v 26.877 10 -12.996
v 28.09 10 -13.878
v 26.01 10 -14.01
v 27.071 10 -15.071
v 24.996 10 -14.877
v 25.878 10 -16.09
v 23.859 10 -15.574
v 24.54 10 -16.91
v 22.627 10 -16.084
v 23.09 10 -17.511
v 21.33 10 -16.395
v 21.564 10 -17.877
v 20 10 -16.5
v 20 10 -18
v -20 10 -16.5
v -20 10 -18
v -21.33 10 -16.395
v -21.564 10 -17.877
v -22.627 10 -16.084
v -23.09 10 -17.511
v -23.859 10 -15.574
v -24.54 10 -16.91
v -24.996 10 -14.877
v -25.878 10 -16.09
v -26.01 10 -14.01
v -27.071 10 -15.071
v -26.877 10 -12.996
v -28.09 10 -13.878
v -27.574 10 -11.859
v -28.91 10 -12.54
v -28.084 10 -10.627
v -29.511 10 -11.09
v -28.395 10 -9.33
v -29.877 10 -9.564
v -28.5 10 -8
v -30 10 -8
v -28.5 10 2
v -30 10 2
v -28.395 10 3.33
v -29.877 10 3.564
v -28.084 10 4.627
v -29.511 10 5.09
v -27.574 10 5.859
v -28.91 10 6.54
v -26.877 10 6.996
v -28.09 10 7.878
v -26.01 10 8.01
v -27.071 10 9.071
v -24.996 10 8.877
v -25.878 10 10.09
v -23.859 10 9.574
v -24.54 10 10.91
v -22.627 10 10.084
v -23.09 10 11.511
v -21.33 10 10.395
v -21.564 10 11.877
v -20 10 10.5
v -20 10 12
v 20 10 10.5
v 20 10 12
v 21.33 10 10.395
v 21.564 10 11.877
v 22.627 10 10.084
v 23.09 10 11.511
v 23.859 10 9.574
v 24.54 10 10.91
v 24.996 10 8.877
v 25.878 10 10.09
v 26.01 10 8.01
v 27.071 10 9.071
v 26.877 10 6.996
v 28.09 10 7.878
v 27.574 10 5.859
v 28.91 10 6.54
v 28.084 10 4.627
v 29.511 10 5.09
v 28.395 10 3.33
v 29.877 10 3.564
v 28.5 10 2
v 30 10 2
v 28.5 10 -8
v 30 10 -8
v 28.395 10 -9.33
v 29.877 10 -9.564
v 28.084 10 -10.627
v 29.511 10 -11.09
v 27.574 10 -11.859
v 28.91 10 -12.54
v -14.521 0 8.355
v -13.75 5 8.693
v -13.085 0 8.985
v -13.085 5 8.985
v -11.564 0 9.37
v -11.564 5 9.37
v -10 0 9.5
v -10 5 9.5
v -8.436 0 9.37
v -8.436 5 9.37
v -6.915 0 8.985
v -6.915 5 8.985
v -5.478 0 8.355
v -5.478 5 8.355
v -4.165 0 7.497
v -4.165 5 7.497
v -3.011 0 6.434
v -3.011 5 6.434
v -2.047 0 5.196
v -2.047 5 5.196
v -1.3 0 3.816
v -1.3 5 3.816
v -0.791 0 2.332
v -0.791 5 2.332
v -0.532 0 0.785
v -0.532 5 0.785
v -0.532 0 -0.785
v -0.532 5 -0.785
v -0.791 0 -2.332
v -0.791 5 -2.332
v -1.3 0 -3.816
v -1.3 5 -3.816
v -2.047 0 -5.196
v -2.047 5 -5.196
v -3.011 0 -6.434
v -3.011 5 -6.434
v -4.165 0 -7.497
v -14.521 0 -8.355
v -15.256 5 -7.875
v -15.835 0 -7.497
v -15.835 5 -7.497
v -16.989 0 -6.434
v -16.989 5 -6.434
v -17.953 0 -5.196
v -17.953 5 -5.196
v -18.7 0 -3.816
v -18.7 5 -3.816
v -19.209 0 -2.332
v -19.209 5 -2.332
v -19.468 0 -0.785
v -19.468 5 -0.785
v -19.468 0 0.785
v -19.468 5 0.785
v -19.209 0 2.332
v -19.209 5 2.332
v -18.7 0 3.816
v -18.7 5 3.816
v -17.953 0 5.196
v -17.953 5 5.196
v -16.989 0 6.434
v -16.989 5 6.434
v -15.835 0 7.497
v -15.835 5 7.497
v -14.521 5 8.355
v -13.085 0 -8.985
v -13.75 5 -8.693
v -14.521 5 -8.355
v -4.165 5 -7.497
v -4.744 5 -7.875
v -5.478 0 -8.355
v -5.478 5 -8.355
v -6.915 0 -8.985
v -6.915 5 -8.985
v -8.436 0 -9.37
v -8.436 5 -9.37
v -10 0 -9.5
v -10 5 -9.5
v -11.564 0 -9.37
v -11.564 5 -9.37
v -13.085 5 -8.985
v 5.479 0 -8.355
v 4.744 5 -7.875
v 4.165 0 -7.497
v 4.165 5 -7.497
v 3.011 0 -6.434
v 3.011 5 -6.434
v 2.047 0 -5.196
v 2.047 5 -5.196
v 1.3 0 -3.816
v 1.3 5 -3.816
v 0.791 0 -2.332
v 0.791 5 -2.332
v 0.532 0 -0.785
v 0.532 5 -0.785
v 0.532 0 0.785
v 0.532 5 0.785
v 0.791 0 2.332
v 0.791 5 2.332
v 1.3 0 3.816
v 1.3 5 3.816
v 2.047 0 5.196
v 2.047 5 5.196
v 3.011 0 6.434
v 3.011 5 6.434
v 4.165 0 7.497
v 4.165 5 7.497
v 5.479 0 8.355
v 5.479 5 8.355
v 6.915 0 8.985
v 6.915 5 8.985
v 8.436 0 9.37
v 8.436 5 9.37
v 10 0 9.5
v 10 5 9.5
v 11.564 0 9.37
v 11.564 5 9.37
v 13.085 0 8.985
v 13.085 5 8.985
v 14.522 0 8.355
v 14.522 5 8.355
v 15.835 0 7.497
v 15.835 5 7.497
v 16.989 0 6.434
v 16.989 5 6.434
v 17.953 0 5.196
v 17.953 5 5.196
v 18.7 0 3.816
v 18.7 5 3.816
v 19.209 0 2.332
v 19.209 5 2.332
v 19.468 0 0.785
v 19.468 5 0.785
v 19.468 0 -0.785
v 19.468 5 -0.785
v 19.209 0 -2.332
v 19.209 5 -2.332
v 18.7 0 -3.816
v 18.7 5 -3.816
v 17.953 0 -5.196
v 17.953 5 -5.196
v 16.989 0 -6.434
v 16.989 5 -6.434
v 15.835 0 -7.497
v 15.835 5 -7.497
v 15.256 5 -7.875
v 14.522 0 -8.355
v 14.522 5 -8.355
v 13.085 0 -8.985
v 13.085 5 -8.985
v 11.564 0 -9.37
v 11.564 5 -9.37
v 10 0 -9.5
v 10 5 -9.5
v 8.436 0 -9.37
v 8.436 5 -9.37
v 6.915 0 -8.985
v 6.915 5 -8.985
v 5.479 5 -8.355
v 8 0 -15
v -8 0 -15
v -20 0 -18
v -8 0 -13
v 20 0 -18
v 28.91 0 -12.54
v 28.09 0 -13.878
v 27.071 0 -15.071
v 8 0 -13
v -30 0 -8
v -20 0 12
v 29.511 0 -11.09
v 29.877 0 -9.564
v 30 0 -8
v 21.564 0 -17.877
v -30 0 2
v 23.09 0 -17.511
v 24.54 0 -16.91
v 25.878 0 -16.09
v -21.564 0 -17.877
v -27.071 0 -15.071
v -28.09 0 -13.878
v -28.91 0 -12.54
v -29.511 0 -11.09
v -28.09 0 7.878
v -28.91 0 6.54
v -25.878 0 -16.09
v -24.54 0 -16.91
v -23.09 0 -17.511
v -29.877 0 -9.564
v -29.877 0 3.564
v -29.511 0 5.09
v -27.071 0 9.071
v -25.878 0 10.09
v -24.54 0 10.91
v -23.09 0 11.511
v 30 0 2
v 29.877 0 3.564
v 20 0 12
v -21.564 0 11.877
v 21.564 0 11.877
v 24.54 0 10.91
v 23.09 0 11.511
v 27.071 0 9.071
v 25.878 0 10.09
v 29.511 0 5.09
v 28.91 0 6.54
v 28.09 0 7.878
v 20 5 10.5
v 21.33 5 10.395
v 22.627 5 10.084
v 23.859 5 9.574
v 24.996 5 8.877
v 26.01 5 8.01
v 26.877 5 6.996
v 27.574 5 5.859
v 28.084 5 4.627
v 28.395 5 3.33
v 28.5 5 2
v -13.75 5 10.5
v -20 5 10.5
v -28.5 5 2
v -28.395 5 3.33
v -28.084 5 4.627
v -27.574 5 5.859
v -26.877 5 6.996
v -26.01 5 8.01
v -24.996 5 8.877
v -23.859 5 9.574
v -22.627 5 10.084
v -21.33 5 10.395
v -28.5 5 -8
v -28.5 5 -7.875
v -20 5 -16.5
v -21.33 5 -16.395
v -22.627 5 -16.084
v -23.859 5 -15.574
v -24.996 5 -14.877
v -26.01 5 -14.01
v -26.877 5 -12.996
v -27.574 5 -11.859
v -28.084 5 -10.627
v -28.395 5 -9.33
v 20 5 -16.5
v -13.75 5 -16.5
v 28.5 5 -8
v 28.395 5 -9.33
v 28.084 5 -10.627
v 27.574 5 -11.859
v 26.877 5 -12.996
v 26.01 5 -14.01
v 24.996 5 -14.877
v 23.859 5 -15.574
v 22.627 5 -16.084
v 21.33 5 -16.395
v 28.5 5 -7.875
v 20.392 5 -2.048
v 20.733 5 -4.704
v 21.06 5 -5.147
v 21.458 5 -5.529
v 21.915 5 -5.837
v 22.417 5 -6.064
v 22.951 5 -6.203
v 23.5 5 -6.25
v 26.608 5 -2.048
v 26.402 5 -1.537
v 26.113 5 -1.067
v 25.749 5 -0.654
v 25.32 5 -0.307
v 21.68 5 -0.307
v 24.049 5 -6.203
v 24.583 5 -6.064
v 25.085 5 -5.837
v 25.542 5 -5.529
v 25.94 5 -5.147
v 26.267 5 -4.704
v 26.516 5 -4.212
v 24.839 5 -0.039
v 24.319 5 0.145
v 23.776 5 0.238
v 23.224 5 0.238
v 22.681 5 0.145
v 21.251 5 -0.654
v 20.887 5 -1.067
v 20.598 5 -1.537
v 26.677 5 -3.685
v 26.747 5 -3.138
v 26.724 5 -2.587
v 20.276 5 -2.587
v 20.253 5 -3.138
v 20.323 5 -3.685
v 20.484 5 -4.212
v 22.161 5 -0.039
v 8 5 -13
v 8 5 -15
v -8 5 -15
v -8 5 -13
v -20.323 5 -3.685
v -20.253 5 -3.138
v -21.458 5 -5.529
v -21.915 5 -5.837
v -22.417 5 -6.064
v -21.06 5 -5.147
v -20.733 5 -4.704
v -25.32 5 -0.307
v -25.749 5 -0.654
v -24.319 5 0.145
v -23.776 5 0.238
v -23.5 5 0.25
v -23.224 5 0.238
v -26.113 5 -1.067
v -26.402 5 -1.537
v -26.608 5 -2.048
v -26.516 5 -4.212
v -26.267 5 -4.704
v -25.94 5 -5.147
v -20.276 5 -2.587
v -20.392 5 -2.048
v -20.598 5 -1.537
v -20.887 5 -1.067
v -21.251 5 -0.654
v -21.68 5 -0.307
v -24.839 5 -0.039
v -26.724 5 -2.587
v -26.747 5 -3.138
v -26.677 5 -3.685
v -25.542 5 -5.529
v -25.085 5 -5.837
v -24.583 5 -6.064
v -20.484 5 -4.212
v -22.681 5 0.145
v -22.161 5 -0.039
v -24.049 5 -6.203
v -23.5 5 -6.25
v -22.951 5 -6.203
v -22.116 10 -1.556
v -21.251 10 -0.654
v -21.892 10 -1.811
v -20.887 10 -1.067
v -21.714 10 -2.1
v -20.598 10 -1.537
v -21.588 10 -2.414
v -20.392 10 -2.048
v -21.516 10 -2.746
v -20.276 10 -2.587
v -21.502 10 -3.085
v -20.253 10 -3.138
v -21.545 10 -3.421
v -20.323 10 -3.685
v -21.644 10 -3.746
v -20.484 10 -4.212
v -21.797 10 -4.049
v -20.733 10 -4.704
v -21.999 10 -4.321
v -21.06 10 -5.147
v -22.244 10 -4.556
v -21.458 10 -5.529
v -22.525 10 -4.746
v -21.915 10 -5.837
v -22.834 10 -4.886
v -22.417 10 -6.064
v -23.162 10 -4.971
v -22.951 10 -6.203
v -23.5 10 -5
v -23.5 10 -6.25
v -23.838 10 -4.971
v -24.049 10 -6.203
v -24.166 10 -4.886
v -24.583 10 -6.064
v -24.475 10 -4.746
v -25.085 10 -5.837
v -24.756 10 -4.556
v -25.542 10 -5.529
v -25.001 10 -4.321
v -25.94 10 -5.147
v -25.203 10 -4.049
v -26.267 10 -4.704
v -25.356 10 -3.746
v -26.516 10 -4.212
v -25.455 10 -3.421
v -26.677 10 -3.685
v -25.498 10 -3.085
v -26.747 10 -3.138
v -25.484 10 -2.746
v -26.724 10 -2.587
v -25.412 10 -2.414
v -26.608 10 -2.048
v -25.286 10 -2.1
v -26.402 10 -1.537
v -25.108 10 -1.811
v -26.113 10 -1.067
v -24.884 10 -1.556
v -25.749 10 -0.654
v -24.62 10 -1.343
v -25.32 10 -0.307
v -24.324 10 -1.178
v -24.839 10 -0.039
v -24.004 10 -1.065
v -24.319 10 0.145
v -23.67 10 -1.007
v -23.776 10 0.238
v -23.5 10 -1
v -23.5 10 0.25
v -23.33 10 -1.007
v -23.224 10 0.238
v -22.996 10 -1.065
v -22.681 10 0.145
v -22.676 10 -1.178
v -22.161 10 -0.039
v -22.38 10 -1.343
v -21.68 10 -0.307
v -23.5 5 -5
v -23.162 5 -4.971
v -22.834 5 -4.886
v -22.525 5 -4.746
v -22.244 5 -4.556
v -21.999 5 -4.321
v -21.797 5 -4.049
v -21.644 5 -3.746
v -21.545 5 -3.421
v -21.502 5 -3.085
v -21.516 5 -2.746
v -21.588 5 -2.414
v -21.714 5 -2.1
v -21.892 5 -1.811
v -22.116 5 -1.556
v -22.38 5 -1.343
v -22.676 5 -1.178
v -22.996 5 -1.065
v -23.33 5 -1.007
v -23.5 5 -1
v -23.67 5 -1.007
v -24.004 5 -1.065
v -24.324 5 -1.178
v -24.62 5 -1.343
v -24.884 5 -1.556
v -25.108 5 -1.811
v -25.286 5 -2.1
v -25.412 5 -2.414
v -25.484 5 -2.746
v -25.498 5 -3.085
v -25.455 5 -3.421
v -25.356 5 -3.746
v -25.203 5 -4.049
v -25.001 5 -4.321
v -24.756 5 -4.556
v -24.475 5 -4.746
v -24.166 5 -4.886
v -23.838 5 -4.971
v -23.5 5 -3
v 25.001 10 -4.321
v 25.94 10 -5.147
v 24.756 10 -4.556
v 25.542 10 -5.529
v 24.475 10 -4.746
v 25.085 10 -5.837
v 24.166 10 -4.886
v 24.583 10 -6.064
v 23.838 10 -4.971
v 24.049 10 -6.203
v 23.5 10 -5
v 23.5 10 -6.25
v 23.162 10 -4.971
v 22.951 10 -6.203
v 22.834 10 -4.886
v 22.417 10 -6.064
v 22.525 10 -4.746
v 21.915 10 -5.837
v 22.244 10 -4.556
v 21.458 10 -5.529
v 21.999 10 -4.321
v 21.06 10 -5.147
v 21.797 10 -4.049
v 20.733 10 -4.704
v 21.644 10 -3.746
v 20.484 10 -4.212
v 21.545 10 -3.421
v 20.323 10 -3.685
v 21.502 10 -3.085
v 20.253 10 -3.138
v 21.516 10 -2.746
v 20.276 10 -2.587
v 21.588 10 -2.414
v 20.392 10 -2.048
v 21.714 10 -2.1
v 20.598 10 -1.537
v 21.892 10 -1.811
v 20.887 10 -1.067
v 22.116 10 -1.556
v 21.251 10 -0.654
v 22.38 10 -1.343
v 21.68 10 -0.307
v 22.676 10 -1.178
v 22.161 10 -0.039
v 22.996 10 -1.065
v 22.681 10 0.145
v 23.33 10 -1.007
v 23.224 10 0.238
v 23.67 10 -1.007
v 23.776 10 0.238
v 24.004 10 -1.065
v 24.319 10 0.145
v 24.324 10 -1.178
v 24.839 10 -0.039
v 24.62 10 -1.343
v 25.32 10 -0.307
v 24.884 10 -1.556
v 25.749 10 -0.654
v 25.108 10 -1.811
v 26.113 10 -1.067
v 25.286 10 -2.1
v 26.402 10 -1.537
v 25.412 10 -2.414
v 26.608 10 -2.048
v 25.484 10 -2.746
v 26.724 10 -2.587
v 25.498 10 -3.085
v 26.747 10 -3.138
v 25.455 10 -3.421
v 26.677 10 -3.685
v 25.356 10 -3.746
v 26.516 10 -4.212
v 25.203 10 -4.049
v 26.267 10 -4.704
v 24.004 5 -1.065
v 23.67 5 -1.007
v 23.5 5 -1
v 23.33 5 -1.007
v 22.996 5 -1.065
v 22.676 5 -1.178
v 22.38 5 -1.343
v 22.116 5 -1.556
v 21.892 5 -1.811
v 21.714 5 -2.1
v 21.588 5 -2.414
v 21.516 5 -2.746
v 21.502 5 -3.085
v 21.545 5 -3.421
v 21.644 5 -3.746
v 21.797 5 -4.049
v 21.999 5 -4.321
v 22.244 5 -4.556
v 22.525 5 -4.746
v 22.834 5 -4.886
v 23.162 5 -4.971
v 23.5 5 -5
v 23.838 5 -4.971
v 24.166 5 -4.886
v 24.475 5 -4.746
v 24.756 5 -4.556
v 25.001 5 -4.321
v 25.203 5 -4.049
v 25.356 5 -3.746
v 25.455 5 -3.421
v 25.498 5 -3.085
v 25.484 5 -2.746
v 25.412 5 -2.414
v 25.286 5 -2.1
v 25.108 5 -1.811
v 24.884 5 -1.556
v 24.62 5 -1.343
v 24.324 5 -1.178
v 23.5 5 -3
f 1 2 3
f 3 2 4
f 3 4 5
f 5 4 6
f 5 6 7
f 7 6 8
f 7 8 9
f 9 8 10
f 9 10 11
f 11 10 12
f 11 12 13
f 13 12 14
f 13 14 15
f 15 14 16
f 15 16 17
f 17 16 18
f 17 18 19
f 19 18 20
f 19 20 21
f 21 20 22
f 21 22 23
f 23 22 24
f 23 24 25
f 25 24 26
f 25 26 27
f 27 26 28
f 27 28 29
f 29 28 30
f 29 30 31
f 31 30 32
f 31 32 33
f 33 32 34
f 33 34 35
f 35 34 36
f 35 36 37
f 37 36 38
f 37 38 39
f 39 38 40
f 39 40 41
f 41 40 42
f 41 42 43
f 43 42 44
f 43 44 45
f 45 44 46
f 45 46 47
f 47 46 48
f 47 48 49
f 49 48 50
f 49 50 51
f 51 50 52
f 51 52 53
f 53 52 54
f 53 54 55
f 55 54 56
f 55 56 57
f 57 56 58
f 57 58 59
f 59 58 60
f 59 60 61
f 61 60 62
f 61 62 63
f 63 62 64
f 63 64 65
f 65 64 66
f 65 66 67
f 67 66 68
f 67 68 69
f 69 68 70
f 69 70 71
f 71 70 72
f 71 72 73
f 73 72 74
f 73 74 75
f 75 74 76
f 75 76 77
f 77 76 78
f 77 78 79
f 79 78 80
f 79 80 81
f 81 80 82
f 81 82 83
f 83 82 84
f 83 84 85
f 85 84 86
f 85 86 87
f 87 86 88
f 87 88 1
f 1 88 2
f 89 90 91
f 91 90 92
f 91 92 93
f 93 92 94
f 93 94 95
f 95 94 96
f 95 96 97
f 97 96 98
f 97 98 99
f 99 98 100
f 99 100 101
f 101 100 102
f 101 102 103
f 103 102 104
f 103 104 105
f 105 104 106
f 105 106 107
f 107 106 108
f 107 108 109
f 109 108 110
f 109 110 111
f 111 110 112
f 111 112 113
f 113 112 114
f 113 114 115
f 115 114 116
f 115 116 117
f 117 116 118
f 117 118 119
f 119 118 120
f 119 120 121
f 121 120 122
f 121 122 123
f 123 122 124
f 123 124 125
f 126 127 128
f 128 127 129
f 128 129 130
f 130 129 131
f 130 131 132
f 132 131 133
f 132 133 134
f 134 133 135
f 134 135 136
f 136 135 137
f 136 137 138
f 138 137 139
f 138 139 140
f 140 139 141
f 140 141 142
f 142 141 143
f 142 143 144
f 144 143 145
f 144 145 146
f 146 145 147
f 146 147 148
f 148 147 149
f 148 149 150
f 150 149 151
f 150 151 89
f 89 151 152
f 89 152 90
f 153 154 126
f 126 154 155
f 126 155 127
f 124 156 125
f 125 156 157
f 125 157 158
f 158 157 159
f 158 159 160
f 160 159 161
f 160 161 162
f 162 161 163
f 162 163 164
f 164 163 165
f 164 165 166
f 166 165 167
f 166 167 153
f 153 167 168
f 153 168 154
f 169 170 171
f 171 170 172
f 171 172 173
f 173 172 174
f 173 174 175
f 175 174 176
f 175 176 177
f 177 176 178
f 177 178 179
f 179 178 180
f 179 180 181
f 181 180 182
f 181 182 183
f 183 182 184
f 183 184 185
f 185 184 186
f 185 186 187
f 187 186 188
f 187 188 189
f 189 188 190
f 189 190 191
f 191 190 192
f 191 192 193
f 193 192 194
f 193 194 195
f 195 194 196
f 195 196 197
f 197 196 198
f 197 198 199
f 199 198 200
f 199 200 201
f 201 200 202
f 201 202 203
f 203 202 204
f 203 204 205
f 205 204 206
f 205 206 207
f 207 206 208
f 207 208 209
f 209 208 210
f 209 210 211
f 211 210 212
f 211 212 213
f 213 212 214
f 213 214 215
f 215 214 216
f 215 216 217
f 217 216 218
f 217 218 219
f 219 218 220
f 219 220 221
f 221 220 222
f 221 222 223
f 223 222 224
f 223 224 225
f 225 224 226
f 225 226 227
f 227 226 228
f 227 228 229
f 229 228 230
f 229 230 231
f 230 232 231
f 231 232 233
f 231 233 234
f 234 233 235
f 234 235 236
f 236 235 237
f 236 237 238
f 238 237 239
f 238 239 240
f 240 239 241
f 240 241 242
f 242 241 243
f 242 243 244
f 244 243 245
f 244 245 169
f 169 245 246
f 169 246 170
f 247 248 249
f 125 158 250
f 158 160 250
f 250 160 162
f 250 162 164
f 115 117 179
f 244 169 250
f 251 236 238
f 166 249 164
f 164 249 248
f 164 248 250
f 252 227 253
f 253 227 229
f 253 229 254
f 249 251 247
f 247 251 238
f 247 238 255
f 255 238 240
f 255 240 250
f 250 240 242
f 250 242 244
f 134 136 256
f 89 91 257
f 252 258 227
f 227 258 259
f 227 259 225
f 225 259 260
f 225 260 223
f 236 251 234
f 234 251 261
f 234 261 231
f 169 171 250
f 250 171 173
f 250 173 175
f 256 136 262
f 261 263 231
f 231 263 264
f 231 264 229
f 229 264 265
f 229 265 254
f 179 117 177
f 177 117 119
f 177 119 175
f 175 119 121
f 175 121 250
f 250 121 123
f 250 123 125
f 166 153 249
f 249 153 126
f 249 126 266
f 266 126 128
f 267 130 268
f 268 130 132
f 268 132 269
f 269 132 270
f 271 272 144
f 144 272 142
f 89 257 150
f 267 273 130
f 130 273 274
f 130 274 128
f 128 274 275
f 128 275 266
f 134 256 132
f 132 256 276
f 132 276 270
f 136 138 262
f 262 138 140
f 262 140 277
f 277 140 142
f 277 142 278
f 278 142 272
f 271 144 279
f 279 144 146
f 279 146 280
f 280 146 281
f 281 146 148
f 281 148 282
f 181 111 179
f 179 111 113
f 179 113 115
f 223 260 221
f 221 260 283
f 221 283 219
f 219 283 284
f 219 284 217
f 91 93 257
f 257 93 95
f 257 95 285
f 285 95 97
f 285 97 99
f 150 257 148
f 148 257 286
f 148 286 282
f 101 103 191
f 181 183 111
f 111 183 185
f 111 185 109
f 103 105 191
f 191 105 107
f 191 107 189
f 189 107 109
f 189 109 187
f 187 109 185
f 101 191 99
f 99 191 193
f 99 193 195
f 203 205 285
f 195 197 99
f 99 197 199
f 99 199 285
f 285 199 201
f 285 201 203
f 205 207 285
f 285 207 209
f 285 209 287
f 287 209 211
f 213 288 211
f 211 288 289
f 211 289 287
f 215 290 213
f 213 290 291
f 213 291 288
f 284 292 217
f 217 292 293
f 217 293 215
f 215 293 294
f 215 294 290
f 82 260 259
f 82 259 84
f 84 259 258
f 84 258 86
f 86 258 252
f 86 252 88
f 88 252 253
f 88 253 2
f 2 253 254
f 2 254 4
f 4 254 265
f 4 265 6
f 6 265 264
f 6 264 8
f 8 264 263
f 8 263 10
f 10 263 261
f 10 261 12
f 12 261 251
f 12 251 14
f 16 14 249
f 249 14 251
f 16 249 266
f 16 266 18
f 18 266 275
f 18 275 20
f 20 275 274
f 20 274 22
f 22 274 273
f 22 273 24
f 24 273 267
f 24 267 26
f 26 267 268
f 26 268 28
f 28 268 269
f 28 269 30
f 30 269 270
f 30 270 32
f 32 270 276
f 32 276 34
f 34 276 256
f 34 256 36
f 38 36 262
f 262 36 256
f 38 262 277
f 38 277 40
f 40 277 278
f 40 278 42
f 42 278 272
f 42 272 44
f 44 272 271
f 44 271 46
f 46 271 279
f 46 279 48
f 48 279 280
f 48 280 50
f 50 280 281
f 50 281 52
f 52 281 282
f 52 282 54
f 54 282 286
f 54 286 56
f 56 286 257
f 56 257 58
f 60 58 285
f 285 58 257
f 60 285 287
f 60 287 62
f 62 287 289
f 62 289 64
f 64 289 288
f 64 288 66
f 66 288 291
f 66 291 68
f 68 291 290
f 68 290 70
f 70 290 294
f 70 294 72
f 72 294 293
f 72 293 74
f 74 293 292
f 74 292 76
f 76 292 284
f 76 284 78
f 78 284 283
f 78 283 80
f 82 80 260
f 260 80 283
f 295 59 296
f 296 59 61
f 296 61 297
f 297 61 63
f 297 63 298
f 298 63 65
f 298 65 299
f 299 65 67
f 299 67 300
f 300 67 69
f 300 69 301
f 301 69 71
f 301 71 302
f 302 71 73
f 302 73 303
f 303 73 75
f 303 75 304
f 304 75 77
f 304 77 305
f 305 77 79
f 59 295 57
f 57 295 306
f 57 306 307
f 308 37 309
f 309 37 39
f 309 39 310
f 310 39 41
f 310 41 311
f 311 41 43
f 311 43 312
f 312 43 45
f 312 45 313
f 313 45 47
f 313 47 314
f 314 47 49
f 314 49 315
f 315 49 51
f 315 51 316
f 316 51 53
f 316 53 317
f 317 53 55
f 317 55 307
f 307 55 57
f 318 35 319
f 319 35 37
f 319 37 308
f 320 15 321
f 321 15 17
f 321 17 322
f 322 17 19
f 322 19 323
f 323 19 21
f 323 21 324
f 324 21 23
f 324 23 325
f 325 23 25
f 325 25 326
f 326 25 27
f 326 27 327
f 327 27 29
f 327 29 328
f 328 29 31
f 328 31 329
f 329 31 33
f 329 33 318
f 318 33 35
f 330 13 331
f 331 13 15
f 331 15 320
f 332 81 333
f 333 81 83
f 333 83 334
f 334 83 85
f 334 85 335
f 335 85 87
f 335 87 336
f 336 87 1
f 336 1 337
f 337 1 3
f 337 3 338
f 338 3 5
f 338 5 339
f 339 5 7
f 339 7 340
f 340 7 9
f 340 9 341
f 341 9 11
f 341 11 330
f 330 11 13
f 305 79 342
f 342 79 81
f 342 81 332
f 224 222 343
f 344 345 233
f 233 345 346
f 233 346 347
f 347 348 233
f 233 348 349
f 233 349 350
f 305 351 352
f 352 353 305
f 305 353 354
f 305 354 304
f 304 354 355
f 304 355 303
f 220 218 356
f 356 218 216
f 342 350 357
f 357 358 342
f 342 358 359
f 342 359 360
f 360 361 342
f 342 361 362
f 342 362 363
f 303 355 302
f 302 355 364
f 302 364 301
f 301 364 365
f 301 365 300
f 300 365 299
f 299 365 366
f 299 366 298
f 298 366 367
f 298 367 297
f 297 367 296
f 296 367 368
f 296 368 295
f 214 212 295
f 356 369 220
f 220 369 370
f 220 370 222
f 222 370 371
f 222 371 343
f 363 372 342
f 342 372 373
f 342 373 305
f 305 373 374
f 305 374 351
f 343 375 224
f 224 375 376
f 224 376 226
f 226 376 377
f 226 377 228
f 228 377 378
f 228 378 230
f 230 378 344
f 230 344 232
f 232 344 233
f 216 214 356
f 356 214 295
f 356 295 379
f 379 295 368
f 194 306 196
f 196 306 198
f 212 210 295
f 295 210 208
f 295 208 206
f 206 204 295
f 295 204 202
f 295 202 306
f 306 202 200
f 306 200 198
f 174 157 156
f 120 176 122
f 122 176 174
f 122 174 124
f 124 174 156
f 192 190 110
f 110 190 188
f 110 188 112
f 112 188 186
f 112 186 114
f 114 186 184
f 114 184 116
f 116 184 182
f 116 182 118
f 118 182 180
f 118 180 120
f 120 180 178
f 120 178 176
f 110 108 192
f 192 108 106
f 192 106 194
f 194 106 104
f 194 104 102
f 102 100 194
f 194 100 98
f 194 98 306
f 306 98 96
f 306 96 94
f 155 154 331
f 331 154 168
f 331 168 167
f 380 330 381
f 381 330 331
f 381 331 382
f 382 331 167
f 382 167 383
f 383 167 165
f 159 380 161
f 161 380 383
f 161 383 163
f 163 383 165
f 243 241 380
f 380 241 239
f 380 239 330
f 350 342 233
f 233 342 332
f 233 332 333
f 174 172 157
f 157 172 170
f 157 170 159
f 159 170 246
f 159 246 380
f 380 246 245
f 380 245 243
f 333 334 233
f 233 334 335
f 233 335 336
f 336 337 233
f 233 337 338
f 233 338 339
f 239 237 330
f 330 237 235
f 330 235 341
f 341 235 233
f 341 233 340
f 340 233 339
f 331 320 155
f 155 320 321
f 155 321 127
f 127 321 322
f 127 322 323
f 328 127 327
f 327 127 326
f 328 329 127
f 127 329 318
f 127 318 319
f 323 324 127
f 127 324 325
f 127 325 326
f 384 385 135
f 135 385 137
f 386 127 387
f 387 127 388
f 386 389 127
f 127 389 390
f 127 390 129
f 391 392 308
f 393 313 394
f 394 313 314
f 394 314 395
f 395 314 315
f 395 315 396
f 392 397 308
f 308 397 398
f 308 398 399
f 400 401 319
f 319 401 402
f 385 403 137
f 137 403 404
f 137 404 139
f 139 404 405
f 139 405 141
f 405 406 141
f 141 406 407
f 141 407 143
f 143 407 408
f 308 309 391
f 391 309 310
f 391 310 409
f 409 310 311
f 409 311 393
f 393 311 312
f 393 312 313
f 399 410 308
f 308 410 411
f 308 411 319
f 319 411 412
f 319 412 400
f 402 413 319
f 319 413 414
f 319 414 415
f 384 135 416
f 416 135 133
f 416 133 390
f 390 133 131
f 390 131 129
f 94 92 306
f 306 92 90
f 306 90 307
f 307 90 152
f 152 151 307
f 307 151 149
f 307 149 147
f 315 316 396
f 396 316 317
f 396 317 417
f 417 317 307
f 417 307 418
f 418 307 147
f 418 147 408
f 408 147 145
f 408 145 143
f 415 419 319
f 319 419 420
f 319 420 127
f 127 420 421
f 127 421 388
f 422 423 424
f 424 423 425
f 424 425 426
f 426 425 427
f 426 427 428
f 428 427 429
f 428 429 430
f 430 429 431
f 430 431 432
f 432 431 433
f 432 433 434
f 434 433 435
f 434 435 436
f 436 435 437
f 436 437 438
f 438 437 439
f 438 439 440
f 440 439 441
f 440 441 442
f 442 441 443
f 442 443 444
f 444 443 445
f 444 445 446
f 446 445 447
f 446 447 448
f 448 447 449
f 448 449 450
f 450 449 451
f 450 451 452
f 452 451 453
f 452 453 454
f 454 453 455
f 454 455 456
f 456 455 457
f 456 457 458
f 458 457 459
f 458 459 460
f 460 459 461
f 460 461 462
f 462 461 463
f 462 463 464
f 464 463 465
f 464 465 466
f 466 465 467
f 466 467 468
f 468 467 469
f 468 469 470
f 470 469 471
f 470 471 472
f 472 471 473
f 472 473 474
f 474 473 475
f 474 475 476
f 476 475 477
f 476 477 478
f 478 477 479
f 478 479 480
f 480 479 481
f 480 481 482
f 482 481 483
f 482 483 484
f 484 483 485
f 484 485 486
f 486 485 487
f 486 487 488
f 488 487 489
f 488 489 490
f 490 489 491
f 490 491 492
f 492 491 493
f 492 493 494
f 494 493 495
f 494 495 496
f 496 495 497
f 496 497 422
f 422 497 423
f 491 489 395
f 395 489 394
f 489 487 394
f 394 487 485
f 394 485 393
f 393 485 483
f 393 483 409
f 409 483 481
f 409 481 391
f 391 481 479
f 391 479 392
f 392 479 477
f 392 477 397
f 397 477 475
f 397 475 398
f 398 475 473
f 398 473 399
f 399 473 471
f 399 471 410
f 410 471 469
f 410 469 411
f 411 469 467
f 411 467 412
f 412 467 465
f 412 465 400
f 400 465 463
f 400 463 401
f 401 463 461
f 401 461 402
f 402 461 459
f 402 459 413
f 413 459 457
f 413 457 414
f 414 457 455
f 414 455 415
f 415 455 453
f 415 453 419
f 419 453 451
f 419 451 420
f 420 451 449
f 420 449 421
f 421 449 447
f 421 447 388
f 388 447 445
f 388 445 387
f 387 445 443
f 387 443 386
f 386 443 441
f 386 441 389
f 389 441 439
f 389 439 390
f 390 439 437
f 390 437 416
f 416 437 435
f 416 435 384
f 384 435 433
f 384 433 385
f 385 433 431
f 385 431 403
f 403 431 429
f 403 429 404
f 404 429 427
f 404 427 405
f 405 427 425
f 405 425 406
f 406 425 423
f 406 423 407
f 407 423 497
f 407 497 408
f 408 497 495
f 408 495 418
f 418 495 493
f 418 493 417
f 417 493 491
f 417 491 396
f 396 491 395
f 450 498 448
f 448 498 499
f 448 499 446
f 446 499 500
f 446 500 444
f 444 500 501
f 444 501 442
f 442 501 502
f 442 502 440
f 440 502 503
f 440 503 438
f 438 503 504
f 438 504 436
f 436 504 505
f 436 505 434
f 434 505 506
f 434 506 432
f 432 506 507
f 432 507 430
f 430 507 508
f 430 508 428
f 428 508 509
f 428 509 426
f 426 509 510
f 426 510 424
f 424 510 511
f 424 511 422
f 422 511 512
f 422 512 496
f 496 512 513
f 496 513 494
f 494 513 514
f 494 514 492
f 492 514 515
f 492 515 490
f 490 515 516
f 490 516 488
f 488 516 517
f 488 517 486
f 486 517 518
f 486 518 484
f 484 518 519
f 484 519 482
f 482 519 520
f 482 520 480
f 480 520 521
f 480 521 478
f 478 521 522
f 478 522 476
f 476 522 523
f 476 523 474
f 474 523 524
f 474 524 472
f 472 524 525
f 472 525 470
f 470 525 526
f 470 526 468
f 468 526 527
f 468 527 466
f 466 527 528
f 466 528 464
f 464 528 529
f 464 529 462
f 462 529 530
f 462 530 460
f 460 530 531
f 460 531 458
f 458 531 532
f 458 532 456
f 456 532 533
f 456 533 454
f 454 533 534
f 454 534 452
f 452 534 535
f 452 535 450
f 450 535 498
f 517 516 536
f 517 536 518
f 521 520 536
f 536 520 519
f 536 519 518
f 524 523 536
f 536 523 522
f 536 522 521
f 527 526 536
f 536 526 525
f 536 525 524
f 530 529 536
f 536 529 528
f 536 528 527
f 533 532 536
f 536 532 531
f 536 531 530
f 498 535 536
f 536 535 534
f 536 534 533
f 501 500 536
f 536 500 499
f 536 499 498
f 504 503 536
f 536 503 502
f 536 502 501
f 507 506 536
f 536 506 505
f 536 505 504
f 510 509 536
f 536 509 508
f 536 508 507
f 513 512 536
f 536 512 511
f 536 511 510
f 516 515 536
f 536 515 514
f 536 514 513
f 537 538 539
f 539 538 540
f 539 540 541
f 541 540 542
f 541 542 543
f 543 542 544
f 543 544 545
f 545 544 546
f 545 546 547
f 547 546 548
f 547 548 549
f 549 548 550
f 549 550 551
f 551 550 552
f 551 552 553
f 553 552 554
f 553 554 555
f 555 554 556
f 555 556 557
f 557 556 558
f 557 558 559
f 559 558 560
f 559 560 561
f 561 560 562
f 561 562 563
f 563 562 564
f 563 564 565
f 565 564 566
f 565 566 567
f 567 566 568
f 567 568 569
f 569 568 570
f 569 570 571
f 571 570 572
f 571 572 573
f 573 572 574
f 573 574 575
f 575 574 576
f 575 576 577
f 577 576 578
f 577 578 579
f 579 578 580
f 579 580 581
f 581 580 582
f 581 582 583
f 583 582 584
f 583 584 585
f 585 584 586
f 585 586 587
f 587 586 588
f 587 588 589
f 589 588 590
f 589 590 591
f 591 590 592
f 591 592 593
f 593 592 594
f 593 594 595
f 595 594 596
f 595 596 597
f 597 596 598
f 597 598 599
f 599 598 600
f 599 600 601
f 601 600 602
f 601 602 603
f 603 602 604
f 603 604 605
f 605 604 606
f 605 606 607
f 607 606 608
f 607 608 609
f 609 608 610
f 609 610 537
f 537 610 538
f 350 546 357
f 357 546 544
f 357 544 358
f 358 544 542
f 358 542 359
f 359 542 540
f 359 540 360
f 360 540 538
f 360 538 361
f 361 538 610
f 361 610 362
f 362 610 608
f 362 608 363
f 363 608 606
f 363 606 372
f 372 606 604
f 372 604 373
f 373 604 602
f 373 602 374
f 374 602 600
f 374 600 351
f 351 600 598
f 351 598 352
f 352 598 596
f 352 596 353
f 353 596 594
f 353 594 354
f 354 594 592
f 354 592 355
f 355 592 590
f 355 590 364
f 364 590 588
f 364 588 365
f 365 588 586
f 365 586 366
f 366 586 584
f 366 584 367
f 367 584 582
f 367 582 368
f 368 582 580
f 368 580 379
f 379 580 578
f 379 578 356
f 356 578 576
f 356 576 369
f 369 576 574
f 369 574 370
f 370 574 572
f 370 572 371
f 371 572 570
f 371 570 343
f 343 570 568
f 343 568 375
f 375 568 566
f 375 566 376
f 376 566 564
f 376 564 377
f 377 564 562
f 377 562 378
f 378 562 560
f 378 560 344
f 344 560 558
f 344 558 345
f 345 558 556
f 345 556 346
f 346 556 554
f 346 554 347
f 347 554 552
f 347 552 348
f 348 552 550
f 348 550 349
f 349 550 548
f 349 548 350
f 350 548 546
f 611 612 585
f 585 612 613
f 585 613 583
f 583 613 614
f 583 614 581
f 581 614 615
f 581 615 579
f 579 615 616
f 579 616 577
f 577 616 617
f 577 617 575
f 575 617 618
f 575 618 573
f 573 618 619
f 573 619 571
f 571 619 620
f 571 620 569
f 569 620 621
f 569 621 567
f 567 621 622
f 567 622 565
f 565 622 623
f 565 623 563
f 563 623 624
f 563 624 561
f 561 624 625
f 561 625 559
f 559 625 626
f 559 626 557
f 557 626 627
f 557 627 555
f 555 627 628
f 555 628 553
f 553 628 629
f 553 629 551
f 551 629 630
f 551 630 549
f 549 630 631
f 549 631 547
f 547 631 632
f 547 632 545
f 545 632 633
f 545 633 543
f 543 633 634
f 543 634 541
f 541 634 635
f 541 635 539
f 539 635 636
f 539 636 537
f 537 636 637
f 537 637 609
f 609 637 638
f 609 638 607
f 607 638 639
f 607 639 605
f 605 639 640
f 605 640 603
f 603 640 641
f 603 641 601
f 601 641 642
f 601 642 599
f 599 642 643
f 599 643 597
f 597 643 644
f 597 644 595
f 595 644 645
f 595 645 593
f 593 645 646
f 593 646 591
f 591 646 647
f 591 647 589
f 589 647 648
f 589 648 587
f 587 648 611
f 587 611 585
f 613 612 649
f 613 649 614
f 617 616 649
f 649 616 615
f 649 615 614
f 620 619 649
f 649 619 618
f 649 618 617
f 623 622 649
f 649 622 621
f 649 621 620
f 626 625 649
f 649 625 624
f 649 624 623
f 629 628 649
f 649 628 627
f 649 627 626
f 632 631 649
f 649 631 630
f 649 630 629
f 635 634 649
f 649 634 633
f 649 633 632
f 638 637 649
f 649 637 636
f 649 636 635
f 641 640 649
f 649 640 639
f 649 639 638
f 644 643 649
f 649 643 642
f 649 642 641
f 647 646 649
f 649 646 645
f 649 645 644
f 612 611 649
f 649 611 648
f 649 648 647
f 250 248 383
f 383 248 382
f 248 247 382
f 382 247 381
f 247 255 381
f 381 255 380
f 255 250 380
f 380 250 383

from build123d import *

# Parameters (mm, degrees)
SKETCH_1_R          = 9.5
EXTRUDE_1_DEPTH     = 10
SKETCH_2_R          = 8.5
SKETCH_2_R_2        = 9.5
CUT_EXTRUDE_1_DEPTH = 5
SKETCH_3_R          = 3.25
SKETCH_3_R_2        = 2
EXTRUDE_2_DEPTH     = 5
SKETCH_4_W          = 16
SKETCH_4_H          = 2
CUT_EXTRUDE_2_DEPTH = 6


with BuildPart() as part:
    # Эскиз1 → Бобышка-Вытянуть1 (new body)
    with BuildSketch(Plane(origin=(0, 0, 0), x_dir=(1, 0, 0), z_dir=(0, 1, 0))):
        with BuildLine():
            Line((-20, 18), (20, 18))
            ThreePointArc((20, 18), (27.071067812, 15.071067812), (30, 8))
            Line((30, 8), (30, -2))
            ThreePointArc((30, -2), (27.071067812, -9.071067812), (20, -12))
            Line((20, -12), (-20, -12))
            ThreePointArc((-20, -12), (-27.071067812, -9.071067812), (-30, -2))
            Line((-30, -2), (-30, 8))
            ThreePointArc((-30, 8), (-27.071067812, 15.071067812), (-20, 18))
        make_face()
        with Locations((-10, 0)):
            Circle(SKETCH_1_R, mode=Mode.SUBTRACT)
        with Locations((10, 0)):
            Circle(SKETCH_1_R, mode=Mode.SUBTRACT)
    extrude(amount=EXTRUDE_1_DEPTH)

    # Эскиз2 → Вырез-Вытянуть1 (cut)
    with BuildSketch(Plane(origin=(0, 10, 0), x_dir=(1, 0, 0), z_dir=(0, 1, 0))):
        with Locations((-20, -2)):
            Circle(SKETCH_2_R)
        with Locations((-20, 8)):
            Circle(SKETCH_2_R)
        with Locations((-10, 0)):
            Circle(SKETCH_2_R_2)
        with BuildLine():
            Line((20, 16.5), (-20, 16.5))
            ThreePointArc((-20, 16.5), (-14.492370575, 14.474258113), (-11.609926002, 9.362592497))
            ThreePointArc((-11.609926002, 9.362592497), (-3.878084328, 7.26444413), (-0.5, 0))
            ThreePointArc((-0.5, 0), (-5.086783087, -8.13082404), (-14.417957802, -8.410210988))
            ThreePointArc((-14.417957802, -8.410210988), (-17.01979811, -9.960426917), (-20, -10.5))
            Line((-20, -10.5), (20, -10.5))
            ThreePointArc((20, -10.5), (17.01979811, -9.960426917), (14.417957802, -8.410210988))
            ThreePointArc((14.417957802, -8.410210988), (0.616398255, -1.48257151), (11.609926002, 9.362592497))
            ThreePointArc((11.609926002, 9.362592497), (14.492370575, 14.474258113), (20, 16.5))
        make_face()
        with BuildLine():
            ThreePointArc((-26.873863542, 3), (-28.08324935, 5.371106707), (-28.5, 8))
            Line((-28.5, 8), (-28.5, -2))
            ThreePointArc((-28.5, -2), (-28.08324935, 0.628893293), (-26.873863542, 3))
        make_face()
        with Locations((20, -2)):
            Circle(SKETCH_2_R)
        with Locations((20, 8)):
            Circle(SKETCH_2_R)
        with Locations((10, 0)):
            Circle(SKETCH_2_R_2)
        with BuildLine():
            Line((28.5, -2), (28.5, 8))
            ThreePointArc((28.5, 8), (28.08324935, 5.371106707), (26.873863542, 3))
            ThreePointArc((26.873863542, 3), (28.08324935, 0.628893293), (28.5, -2))
        make_face()
    extrude(amount=-CUT_EXTRUDE_1_DEPTH, mode=Mode.SUBTRACT)

    # Эскиз3 → Бобышка-Вытянуть2 (add)
    with BuildSketch(Plane(origin=(0, 5, 0), x_dir=(1, 0, 0), z_dir=(0, 1, 0))):
        with Locations((-23.5, 3)):
            Circle(SKETCH_3_R)
        with Locations((-23.5, 3)):
            Circle(SKETCH_3_R_2, mode=Mode.SUBTRACT)
        with Locations((23.5, 3)):
            Circle(SKETCH_3_R)
        with Locations((23.5, 3)):
            Circle(SKETCH_3_R_2, mode=Mode.SUBTRACT)
    extrude(amount=EXTRUDE_2_DEPTH)

    # Эскиз4 → Вырез-Вытянуть2 (cut, through all)
    with BuildSketch(Plane(origin=(0, 5, 0), x_dir=(1, 0, 0), z_dir=(0, 1, 0))):
        with Locations((0, 14)):
            Rectangle(SKETCH_4_W, SKETCH_4_H)
    extrude(amount=-CUT_EXTRUDE_2_DEPTH, mode=Mode.SUBTRACT)


solid = part.part
